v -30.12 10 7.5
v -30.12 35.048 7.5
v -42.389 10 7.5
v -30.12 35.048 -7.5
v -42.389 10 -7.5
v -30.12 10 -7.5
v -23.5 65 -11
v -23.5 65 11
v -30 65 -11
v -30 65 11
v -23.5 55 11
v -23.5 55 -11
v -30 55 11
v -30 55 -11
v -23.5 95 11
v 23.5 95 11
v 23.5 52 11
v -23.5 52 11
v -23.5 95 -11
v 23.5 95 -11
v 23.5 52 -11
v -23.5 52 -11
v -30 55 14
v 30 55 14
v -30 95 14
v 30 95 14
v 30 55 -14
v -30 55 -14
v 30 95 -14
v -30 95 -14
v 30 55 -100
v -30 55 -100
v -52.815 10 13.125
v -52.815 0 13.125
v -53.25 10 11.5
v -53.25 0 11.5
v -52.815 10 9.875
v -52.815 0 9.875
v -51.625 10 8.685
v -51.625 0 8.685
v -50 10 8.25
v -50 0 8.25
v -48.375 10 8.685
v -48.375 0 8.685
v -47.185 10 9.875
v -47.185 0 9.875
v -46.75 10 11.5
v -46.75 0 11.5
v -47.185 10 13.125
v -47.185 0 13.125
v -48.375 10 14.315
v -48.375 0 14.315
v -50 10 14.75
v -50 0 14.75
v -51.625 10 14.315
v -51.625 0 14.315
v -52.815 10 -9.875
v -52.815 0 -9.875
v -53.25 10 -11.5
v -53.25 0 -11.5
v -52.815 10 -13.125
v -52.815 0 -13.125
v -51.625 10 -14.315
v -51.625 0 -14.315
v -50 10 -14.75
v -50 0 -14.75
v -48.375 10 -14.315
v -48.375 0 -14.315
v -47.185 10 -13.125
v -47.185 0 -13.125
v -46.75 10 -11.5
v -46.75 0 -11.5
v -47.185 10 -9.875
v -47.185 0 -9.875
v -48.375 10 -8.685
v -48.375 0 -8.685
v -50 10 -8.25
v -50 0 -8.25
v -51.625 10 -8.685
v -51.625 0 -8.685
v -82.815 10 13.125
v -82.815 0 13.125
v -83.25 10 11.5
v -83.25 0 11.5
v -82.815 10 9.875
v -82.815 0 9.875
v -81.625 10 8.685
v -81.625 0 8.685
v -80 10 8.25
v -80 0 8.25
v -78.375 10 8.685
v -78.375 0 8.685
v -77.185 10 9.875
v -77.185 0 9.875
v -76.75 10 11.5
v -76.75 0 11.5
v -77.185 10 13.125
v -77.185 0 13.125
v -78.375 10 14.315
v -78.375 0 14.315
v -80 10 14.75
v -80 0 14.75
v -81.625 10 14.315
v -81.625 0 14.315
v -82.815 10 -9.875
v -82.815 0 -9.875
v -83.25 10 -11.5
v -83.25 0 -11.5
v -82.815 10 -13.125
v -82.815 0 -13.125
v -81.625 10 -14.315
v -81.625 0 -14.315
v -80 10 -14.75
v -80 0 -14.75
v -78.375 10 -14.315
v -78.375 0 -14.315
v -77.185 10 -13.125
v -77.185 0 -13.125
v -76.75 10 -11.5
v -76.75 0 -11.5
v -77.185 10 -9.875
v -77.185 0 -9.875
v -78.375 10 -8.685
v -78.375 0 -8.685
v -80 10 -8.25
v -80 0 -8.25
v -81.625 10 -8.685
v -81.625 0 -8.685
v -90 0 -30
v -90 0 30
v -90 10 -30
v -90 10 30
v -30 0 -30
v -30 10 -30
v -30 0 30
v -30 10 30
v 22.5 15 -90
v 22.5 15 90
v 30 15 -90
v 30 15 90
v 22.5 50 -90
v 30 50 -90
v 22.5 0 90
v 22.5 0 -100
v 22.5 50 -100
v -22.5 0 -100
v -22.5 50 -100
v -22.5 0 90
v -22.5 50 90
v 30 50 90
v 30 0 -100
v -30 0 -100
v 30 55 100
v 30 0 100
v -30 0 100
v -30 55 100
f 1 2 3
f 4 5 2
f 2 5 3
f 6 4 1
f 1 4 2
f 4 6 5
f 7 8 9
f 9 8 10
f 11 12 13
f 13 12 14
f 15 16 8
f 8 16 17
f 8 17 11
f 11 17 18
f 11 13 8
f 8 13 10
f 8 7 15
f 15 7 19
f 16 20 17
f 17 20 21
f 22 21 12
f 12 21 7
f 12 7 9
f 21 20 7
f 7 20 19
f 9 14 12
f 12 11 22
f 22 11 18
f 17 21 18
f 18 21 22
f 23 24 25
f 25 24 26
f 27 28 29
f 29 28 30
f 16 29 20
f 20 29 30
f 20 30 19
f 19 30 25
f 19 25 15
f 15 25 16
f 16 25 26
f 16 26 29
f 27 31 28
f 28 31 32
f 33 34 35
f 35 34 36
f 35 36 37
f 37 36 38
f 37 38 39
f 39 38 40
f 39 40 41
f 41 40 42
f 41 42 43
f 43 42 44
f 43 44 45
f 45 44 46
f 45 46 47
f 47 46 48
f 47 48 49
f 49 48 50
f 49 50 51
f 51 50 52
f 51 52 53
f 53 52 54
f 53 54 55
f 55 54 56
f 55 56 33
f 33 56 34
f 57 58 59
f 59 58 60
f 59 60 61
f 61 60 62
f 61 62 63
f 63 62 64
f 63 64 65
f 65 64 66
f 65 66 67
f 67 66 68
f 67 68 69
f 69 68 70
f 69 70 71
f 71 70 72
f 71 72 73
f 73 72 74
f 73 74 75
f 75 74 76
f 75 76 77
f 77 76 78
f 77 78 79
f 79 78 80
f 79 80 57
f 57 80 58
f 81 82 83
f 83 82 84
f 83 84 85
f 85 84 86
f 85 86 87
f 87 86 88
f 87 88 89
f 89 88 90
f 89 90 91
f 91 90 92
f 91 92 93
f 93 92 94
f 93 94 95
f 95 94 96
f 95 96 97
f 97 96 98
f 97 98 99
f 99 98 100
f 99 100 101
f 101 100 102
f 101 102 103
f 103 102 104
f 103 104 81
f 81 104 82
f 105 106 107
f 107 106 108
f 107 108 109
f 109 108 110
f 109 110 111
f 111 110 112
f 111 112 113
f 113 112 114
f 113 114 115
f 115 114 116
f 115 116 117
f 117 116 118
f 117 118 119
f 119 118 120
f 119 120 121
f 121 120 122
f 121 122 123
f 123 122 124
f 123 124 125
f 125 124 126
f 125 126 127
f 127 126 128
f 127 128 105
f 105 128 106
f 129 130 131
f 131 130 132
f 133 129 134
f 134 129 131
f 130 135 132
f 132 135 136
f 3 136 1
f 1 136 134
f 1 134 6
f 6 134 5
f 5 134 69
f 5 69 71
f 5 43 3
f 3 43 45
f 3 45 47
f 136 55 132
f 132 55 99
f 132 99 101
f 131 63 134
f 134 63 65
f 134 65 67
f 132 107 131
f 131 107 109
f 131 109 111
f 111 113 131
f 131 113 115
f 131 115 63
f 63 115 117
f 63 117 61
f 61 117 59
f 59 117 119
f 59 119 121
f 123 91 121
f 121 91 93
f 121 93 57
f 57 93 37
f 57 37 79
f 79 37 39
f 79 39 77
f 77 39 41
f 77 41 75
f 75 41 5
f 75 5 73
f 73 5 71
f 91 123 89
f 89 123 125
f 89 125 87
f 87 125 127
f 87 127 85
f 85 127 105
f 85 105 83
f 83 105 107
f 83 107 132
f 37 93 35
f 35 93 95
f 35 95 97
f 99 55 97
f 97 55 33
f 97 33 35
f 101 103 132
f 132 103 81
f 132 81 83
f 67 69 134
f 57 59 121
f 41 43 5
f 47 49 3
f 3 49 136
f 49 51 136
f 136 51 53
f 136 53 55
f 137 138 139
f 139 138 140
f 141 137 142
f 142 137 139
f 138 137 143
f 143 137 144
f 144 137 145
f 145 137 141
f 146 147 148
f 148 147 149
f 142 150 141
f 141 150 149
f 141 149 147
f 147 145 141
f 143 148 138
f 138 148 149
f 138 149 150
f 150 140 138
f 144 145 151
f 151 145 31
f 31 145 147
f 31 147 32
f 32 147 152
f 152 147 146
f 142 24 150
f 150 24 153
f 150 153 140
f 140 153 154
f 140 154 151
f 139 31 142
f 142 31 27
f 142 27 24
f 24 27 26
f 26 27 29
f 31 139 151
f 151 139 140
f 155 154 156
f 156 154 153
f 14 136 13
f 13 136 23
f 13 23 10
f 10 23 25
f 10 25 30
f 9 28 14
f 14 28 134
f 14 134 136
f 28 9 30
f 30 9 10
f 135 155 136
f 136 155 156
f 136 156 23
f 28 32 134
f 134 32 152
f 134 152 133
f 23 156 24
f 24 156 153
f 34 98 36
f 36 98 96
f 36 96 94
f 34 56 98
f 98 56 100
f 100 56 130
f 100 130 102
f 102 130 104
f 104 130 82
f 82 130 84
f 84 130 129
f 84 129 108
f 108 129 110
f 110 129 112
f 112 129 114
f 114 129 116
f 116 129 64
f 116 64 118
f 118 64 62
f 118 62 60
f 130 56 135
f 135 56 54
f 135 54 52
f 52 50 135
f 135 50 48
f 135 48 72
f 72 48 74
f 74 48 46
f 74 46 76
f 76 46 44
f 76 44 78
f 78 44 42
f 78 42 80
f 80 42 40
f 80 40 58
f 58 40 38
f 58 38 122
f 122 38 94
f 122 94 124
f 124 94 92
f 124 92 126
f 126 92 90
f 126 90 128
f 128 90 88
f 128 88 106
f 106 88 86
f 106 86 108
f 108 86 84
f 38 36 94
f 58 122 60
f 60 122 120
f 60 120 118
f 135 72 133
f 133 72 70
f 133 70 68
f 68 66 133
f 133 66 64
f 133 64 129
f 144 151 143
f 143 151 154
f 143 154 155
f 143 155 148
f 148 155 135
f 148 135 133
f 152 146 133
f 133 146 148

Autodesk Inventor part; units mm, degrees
ref_plane "YZ Plane" through (0, 0, 0) normal (1, 0, 0) x (0, 1, 0)
ref_plane "XZ Plane" through (0, 0, 0) normal (0, 1, 0) x (-1, 0, 0)
sketch "Boceto2" plane through (0, 0, 0) normal (0, 1, 0) x (-1, 0, 0)
  line L0 (-30, 100) -> (30, 100)
  line L1 (30, 100) -> (30, -100)
  line L2 (30, -100) -> (-30, -100)
  line L3 (-30, -100) -> (-30, 100)
  line L4 (-30, 100) -> (30, -100) construction
  line L5 (30, 100) -> (-30, -100) construction
  point P0 (0, 0)
  dimension "d0" = 60
  dimension "d1" = 200
extrude "Extrusión1" add sketch "Boceto2" along normal blind 55
sketch "Boceto3" plane through (30, 0, -100) normal (0, 0, -1) x (-1, 0, 0)
  line L0 (7.5, 50) -> (52.5, 50)
  line L1 (52.5, 50) -> (52.5, 0)
  line L2 (52.5, 0) -> (7.5, 0)
  line L3 (7.5, 0) -> (7.5, 50)
  line L4 (0, 0) -> (60, 0) projected
  point P0 (30, 0)
  dimension "d4" = 45
  dimension "d5" = 50
  dimension "d6" = 0
extrude "Extrusión2" cut sketch "Boceto3" against normal blind 190
sketch "Boceto4" plane through (30, 0, 100) normal (1, 0, 0) x (0, 0, -1)
  line L0 (10, 50) -> (10, 0) projected
  line L1 (10, 50) -> (10, 0)
  line L2 (200, 0) -> (0, 0) projected
  line L3 (10, 50) -> (10, 0)
  line L4 (190, 0) -> (190, 50)
  line L5 (200, 50) -> (10, 50) projected
  line L6 (200, 0) -> (200, 55) projected
  line L7 (10, 15) -> (190, 15)
  line L8 (10, 50) -> (190, 50)
  point P0 (100, 0)
  point P1 (200, 27.5)
  dimension "d9" = 10
  dimension "d10" = 15
extrude "Extrusión3" cut sketch "Boceto4" against normal blind 10 contours L5 L4 L7 L0
sketch "Boceto5" plane through (0, 0, 0) normal (0, 1, 0) x (-1, 0, 0)
  line L0 (30, -100) -> (30, 100) projected
  line L1 (30, 0) -> (60, 0)
  line L2 (90, 30) -> (30, 30)
  line L3 (30, 30) -> (30, -30)
  line L4 (30, -30) -> (90, -30)
  line L5 (90, -30) -> (90, 30)
  line L6 (90, 30) -> (30, -30) construction
  line L7 (30, 30) -> (90, -30) construction
  circle A0 centre (50, 11.5) radius 3.25
  circle A1 centre (50, -11.5) radius 3.25
  circle A2 centre (80, 11.5) radius 3.25
  circle A3 centre (80, -11.5) radius 3.25
  point P0 (0, 0)
  dimension "d16" = 30
  dimension "d17" = 60
  dimension "d18" = 60
  dimension "d19" = 6.5
  dimension "d20" = 20
  dimension "d21" = 18.5
  dimension "d22" = 23
  dimension "d23" = 6.5
  dimension "d24" = 30
  dimension "d25" = 18.5
extrude "Extrusión4" add sketch "Boceto5" along normal blind 10
sketch "Boceto6" plane through (0, 55, 0) normal (0, 1, 0) x (1, 0, 0)
  line L0 (-30, 30) -> (-30, -30) projected
  line L1 (30, -14) -> (-30, -14)
  line L2 (-30, -14) -> (-30, 14)
  line L3 (-30, 14) -> (30, 14)
  line L4 (30, 14) -> (30, -14)
  line L5 (30, -14) -> (-30, 14) construction
  line L6 (-30, -14) -> (30, 14) construction
  point P0 (0, 0)
  dimension "d28" = 28
extrude "Extrusión5" add sketch "Boceto6" along normal blind 40
sketch "Boceto7" plane through (0, 95, 0) normal (0, 1, 0) x (1, 0, 0)
  line L0 (-23.5, 11) -> (23.5, 11)
  line L1 (23.5, 11) -> (23.5, -11)
  line L2 (23.5, -11) -> (-23.5, -11)
  line L3 (-23.5, -11) -> (-23.5, 11)
  line L4 (-23.5, 11) -> (23.5, -11) construction
  line L5 (23.5, 11) -> (-23.5, -11) construction
  point P0 (0, 0)
  dimension "d31" = 47
  dimension "d32" = 22
extrude "Extrusión6" cut sketch "Boceto7" against normal blind 43
sketch "Boceto8" plane through (-30, 0, 100) normal (-1, 0, 0) x (0, 0, 1)
  line L0 (-200, 55) -> (-114, 55) projected
  line L1 (0, 55) -> (-86, 55) projected
  line L2 (-114, 55) -> (-86, 55)
  line L3 (-111, 65) -> (-89, 65)
  line L4 (-89, 65) -> (-89, 55)
  line L5 (-89, 55) -> (-111, 55)
  line L6 (-111, 55) -> (-111, 65)
  line L7 (-111, 65) -> (-89, 55) construction
  line L8 (-89, 65) -> (-111, 55) construction
  point P0 (-100, 0)
  point P1 (-100, 60)
  dimension "d35" = 22
  dimension "d36" = 10
  dimension "d37" = 0
extrude "Extrusión7" cut sketch "Boceto8" against normal blind 10
ref_plane "Plano de trabajo1" through (30, 55, 0) normal (0, 0, -1) x (-1, 0, 0)
sketch "Boceto10" plane through (30, 55, 0) normal (0, 0, -1) x (-1, 0, 0)
  line L0 (60.12, -45) -> (60.12, 17.4198)
  line L1 (60.12, -45) -> (60.12, 13.5667)
  line L2 (60.12, -45) -> (137.1989, -45)
  line L3 (60.12, -19.9519) -> (80.5233, -61.6073)
  line L4 (120, -45) -> (60, -45) projected
  point P0 (30, -55)
  point P1 (72.3889, -45)
  dimension "d41" = 0
extrude "Extrusión8" add sketch "Boceto10" along normal mid plane 15
properties part number "depth_camera_support"
